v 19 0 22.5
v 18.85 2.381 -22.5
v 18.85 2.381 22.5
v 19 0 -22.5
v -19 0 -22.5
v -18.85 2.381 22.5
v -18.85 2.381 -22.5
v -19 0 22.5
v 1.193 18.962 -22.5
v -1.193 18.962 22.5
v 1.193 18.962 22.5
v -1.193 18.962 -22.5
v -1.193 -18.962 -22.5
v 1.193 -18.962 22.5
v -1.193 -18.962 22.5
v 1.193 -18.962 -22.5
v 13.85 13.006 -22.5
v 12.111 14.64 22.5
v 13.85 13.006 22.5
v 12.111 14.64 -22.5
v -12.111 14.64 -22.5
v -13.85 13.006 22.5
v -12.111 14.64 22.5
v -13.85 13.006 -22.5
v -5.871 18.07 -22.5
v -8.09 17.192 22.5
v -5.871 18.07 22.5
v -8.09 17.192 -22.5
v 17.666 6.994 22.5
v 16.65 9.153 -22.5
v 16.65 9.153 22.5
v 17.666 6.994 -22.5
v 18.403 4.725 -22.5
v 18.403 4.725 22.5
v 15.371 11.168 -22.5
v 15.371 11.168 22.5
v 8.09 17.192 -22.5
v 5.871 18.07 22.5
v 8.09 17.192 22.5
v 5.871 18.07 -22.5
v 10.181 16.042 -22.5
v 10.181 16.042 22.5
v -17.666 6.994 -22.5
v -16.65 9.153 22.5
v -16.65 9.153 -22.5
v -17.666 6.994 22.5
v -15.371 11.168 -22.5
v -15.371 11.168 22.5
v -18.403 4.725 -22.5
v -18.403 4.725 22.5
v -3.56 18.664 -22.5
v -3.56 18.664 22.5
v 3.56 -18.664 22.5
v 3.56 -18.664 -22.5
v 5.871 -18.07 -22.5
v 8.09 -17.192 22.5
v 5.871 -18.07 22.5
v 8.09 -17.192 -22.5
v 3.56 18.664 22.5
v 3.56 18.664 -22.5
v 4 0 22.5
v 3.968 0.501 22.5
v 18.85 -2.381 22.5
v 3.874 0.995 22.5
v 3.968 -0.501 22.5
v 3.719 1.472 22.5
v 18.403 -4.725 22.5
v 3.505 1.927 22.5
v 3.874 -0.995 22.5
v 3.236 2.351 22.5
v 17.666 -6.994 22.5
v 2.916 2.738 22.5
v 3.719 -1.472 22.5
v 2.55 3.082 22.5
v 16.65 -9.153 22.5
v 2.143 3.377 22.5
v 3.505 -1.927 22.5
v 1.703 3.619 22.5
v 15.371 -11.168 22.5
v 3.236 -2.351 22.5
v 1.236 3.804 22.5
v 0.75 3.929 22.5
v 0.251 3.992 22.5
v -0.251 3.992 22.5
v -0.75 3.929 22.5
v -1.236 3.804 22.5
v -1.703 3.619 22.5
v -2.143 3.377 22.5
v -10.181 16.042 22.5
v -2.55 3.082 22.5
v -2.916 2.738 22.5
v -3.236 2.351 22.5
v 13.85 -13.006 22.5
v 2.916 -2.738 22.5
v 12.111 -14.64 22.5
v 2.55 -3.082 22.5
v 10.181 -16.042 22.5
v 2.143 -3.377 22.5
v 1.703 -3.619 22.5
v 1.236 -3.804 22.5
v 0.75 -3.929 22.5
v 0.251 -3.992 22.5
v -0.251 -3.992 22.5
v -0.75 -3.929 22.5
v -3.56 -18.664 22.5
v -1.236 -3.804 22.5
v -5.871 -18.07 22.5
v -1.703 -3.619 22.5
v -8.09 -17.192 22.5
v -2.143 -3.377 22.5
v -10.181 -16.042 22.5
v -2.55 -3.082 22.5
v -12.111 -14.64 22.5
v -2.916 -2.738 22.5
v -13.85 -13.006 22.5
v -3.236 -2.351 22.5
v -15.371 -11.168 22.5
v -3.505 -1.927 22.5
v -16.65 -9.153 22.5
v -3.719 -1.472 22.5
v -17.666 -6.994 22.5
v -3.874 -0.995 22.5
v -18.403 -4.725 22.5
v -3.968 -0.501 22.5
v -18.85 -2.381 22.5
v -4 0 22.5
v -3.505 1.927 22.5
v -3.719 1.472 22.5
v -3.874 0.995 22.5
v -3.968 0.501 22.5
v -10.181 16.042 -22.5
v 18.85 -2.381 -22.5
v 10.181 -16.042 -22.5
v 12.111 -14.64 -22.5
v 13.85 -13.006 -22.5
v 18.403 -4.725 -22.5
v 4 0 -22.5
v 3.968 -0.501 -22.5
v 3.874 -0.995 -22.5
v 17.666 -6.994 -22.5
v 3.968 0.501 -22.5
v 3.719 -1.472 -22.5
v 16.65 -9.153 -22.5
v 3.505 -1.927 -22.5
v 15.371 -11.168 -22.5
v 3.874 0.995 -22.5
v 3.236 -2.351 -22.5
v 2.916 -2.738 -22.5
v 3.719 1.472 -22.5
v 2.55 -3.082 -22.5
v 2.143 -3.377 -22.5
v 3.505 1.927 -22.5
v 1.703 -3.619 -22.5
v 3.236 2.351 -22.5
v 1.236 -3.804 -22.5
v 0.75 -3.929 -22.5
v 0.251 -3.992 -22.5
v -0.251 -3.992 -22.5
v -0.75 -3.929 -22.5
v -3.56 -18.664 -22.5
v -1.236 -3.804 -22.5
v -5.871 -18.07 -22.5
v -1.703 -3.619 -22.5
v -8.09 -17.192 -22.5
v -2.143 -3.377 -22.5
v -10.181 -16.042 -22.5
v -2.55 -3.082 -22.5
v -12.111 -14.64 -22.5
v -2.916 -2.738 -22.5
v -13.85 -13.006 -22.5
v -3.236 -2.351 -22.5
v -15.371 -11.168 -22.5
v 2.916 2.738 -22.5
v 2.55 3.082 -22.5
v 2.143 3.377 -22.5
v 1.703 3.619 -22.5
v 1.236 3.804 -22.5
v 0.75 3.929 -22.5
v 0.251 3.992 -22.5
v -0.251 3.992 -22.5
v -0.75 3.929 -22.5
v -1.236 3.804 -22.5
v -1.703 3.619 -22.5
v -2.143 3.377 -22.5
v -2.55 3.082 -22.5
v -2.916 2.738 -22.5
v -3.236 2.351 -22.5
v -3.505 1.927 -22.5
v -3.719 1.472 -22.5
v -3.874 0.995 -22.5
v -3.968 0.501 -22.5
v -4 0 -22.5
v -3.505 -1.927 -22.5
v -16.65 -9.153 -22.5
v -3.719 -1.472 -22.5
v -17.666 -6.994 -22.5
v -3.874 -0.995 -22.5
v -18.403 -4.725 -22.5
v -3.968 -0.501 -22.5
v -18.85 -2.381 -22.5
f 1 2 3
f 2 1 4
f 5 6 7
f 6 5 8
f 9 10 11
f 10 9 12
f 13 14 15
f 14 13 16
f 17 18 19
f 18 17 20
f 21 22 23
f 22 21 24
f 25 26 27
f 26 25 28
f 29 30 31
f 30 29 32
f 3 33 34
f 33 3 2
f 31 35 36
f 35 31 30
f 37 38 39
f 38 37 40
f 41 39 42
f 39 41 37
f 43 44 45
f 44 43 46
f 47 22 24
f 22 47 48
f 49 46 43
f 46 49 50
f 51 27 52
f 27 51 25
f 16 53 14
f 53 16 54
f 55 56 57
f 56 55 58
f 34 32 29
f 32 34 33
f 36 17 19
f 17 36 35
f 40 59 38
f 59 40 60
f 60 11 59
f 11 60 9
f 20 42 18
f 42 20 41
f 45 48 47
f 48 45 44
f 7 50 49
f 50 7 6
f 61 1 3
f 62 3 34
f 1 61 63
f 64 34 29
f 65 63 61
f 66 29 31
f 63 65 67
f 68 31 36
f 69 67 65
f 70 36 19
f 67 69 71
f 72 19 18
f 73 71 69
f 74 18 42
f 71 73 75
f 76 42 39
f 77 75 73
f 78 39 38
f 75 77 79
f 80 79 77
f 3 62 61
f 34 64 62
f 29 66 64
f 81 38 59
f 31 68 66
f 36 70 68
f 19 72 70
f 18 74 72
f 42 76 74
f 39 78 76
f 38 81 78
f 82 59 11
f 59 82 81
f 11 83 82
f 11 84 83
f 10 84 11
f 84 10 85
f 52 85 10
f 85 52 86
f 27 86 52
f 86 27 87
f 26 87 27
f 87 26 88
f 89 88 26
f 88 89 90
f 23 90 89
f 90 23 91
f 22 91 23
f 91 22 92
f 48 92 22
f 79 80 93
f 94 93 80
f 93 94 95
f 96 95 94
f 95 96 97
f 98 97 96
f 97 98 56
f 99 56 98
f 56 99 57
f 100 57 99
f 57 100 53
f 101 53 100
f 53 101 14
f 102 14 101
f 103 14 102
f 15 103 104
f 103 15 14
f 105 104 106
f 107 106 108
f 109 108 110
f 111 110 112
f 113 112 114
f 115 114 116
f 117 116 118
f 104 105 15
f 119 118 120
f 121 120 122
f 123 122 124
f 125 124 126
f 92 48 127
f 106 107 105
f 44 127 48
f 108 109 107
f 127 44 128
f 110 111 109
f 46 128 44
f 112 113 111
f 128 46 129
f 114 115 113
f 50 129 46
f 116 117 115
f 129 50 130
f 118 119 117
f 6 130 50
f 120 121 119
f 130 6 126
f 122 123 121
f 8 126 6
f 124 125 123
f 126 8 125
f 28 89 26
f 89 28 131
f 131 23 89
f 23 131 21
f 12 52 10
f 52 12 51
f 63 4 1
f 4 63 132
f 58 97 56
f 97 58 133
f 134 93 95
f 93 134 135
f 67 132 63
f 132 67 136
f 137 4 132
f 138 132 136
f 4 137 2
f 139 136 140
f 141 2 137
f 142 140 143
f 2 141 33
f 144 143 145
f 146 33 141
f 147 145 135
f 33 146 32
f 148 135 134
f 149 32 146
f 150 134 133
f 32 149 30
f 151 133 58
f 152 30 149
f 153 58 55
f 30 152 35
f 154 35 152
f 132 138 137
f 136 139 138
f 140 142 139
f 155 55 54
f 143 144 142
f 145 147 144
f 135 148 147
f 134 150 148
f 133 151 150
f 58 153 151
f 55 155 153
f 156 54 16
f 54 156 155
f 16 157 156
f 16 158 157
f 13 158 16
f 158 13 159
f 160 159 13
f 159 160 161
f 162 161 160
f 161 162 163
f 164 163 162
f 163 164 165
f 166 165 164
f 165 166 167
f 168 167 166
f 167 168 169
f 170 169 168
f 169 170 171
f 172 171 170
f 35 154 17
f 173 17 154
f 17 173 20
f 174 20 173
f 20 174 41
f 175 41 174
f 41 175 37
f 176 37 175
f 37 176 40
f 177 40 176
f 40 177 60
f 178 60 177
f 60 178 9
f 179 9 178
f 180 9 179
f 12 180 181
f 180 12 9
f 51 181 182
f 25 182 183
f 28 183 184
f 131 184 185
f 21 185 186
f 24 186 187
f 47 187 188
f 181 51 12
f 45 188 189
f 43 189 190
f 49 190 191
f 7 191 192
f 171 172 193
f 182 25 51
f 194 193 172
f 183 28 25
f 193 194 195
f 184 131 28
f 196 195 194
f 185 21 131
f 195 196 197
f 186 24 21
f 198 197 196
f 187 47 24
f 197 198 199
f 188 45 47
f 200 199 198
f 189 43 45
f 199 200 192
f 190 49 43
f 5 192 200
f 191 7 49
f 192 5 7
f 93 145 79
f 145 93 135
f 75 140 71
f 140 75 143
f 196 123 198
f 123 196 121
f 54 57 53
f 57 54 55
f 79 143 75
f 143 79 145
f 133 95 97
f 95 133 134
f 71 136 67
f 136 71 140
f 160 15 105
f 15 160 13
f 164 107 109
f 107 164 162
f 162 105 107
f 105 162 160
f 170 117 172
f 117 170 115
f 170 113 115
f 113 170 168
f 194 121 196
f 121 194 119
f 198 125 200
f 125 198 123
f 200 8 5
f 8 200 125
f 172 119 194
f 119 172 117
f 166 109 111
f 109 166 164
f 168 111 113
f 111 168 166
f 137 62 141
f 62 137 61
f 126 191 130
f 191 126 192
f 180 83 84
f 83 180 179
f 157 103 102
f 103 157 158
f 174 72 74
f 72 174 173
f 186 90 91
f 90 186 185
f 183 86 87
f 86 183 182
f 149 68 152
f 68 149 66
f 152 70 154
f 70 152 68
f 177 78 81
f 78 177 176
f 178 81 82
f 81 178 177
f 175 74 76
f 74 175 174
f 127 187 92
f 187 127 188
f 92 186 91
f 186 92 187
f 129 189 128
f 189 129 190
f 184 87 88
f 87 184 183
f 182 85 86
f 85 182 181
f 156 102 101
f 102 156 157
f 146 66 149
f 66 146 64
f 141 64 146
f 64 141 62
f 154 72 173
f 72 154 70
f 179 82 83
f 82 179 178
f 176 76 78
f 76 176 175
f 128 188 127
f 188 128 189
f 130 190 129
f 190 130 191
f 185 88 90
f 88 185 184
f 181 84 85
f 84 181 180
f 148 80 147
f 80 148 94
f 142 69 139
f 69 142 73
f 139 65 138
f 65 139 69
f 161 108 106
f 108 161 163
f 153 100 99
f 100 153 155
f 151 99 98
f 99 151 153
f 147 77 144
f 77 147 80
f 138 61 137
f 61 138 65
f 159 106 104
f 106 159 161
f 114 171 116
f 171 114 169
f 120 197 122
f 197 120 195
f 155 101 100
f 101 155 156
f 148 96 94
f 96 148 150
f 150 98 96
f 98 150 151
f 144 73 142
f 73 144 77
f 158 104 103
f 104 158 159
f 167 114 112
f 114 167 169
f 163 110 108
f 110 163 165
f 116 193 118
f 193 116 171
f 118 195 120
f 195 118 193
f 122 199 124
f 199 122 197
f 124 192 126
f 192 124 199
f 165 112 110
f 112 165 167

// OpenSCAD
$fn = 50;


difference() {
	union() {
		translate(v = [0, 0, -22.5000000000]) {
			cylinder(h = 45, r = 19.0000000000);
		}
	}
	union() {
		translate(v = [0, 0, -100.0000000000]) {
			cylinder(h = 200, r = 4.0000000000);
		}
	}
}
